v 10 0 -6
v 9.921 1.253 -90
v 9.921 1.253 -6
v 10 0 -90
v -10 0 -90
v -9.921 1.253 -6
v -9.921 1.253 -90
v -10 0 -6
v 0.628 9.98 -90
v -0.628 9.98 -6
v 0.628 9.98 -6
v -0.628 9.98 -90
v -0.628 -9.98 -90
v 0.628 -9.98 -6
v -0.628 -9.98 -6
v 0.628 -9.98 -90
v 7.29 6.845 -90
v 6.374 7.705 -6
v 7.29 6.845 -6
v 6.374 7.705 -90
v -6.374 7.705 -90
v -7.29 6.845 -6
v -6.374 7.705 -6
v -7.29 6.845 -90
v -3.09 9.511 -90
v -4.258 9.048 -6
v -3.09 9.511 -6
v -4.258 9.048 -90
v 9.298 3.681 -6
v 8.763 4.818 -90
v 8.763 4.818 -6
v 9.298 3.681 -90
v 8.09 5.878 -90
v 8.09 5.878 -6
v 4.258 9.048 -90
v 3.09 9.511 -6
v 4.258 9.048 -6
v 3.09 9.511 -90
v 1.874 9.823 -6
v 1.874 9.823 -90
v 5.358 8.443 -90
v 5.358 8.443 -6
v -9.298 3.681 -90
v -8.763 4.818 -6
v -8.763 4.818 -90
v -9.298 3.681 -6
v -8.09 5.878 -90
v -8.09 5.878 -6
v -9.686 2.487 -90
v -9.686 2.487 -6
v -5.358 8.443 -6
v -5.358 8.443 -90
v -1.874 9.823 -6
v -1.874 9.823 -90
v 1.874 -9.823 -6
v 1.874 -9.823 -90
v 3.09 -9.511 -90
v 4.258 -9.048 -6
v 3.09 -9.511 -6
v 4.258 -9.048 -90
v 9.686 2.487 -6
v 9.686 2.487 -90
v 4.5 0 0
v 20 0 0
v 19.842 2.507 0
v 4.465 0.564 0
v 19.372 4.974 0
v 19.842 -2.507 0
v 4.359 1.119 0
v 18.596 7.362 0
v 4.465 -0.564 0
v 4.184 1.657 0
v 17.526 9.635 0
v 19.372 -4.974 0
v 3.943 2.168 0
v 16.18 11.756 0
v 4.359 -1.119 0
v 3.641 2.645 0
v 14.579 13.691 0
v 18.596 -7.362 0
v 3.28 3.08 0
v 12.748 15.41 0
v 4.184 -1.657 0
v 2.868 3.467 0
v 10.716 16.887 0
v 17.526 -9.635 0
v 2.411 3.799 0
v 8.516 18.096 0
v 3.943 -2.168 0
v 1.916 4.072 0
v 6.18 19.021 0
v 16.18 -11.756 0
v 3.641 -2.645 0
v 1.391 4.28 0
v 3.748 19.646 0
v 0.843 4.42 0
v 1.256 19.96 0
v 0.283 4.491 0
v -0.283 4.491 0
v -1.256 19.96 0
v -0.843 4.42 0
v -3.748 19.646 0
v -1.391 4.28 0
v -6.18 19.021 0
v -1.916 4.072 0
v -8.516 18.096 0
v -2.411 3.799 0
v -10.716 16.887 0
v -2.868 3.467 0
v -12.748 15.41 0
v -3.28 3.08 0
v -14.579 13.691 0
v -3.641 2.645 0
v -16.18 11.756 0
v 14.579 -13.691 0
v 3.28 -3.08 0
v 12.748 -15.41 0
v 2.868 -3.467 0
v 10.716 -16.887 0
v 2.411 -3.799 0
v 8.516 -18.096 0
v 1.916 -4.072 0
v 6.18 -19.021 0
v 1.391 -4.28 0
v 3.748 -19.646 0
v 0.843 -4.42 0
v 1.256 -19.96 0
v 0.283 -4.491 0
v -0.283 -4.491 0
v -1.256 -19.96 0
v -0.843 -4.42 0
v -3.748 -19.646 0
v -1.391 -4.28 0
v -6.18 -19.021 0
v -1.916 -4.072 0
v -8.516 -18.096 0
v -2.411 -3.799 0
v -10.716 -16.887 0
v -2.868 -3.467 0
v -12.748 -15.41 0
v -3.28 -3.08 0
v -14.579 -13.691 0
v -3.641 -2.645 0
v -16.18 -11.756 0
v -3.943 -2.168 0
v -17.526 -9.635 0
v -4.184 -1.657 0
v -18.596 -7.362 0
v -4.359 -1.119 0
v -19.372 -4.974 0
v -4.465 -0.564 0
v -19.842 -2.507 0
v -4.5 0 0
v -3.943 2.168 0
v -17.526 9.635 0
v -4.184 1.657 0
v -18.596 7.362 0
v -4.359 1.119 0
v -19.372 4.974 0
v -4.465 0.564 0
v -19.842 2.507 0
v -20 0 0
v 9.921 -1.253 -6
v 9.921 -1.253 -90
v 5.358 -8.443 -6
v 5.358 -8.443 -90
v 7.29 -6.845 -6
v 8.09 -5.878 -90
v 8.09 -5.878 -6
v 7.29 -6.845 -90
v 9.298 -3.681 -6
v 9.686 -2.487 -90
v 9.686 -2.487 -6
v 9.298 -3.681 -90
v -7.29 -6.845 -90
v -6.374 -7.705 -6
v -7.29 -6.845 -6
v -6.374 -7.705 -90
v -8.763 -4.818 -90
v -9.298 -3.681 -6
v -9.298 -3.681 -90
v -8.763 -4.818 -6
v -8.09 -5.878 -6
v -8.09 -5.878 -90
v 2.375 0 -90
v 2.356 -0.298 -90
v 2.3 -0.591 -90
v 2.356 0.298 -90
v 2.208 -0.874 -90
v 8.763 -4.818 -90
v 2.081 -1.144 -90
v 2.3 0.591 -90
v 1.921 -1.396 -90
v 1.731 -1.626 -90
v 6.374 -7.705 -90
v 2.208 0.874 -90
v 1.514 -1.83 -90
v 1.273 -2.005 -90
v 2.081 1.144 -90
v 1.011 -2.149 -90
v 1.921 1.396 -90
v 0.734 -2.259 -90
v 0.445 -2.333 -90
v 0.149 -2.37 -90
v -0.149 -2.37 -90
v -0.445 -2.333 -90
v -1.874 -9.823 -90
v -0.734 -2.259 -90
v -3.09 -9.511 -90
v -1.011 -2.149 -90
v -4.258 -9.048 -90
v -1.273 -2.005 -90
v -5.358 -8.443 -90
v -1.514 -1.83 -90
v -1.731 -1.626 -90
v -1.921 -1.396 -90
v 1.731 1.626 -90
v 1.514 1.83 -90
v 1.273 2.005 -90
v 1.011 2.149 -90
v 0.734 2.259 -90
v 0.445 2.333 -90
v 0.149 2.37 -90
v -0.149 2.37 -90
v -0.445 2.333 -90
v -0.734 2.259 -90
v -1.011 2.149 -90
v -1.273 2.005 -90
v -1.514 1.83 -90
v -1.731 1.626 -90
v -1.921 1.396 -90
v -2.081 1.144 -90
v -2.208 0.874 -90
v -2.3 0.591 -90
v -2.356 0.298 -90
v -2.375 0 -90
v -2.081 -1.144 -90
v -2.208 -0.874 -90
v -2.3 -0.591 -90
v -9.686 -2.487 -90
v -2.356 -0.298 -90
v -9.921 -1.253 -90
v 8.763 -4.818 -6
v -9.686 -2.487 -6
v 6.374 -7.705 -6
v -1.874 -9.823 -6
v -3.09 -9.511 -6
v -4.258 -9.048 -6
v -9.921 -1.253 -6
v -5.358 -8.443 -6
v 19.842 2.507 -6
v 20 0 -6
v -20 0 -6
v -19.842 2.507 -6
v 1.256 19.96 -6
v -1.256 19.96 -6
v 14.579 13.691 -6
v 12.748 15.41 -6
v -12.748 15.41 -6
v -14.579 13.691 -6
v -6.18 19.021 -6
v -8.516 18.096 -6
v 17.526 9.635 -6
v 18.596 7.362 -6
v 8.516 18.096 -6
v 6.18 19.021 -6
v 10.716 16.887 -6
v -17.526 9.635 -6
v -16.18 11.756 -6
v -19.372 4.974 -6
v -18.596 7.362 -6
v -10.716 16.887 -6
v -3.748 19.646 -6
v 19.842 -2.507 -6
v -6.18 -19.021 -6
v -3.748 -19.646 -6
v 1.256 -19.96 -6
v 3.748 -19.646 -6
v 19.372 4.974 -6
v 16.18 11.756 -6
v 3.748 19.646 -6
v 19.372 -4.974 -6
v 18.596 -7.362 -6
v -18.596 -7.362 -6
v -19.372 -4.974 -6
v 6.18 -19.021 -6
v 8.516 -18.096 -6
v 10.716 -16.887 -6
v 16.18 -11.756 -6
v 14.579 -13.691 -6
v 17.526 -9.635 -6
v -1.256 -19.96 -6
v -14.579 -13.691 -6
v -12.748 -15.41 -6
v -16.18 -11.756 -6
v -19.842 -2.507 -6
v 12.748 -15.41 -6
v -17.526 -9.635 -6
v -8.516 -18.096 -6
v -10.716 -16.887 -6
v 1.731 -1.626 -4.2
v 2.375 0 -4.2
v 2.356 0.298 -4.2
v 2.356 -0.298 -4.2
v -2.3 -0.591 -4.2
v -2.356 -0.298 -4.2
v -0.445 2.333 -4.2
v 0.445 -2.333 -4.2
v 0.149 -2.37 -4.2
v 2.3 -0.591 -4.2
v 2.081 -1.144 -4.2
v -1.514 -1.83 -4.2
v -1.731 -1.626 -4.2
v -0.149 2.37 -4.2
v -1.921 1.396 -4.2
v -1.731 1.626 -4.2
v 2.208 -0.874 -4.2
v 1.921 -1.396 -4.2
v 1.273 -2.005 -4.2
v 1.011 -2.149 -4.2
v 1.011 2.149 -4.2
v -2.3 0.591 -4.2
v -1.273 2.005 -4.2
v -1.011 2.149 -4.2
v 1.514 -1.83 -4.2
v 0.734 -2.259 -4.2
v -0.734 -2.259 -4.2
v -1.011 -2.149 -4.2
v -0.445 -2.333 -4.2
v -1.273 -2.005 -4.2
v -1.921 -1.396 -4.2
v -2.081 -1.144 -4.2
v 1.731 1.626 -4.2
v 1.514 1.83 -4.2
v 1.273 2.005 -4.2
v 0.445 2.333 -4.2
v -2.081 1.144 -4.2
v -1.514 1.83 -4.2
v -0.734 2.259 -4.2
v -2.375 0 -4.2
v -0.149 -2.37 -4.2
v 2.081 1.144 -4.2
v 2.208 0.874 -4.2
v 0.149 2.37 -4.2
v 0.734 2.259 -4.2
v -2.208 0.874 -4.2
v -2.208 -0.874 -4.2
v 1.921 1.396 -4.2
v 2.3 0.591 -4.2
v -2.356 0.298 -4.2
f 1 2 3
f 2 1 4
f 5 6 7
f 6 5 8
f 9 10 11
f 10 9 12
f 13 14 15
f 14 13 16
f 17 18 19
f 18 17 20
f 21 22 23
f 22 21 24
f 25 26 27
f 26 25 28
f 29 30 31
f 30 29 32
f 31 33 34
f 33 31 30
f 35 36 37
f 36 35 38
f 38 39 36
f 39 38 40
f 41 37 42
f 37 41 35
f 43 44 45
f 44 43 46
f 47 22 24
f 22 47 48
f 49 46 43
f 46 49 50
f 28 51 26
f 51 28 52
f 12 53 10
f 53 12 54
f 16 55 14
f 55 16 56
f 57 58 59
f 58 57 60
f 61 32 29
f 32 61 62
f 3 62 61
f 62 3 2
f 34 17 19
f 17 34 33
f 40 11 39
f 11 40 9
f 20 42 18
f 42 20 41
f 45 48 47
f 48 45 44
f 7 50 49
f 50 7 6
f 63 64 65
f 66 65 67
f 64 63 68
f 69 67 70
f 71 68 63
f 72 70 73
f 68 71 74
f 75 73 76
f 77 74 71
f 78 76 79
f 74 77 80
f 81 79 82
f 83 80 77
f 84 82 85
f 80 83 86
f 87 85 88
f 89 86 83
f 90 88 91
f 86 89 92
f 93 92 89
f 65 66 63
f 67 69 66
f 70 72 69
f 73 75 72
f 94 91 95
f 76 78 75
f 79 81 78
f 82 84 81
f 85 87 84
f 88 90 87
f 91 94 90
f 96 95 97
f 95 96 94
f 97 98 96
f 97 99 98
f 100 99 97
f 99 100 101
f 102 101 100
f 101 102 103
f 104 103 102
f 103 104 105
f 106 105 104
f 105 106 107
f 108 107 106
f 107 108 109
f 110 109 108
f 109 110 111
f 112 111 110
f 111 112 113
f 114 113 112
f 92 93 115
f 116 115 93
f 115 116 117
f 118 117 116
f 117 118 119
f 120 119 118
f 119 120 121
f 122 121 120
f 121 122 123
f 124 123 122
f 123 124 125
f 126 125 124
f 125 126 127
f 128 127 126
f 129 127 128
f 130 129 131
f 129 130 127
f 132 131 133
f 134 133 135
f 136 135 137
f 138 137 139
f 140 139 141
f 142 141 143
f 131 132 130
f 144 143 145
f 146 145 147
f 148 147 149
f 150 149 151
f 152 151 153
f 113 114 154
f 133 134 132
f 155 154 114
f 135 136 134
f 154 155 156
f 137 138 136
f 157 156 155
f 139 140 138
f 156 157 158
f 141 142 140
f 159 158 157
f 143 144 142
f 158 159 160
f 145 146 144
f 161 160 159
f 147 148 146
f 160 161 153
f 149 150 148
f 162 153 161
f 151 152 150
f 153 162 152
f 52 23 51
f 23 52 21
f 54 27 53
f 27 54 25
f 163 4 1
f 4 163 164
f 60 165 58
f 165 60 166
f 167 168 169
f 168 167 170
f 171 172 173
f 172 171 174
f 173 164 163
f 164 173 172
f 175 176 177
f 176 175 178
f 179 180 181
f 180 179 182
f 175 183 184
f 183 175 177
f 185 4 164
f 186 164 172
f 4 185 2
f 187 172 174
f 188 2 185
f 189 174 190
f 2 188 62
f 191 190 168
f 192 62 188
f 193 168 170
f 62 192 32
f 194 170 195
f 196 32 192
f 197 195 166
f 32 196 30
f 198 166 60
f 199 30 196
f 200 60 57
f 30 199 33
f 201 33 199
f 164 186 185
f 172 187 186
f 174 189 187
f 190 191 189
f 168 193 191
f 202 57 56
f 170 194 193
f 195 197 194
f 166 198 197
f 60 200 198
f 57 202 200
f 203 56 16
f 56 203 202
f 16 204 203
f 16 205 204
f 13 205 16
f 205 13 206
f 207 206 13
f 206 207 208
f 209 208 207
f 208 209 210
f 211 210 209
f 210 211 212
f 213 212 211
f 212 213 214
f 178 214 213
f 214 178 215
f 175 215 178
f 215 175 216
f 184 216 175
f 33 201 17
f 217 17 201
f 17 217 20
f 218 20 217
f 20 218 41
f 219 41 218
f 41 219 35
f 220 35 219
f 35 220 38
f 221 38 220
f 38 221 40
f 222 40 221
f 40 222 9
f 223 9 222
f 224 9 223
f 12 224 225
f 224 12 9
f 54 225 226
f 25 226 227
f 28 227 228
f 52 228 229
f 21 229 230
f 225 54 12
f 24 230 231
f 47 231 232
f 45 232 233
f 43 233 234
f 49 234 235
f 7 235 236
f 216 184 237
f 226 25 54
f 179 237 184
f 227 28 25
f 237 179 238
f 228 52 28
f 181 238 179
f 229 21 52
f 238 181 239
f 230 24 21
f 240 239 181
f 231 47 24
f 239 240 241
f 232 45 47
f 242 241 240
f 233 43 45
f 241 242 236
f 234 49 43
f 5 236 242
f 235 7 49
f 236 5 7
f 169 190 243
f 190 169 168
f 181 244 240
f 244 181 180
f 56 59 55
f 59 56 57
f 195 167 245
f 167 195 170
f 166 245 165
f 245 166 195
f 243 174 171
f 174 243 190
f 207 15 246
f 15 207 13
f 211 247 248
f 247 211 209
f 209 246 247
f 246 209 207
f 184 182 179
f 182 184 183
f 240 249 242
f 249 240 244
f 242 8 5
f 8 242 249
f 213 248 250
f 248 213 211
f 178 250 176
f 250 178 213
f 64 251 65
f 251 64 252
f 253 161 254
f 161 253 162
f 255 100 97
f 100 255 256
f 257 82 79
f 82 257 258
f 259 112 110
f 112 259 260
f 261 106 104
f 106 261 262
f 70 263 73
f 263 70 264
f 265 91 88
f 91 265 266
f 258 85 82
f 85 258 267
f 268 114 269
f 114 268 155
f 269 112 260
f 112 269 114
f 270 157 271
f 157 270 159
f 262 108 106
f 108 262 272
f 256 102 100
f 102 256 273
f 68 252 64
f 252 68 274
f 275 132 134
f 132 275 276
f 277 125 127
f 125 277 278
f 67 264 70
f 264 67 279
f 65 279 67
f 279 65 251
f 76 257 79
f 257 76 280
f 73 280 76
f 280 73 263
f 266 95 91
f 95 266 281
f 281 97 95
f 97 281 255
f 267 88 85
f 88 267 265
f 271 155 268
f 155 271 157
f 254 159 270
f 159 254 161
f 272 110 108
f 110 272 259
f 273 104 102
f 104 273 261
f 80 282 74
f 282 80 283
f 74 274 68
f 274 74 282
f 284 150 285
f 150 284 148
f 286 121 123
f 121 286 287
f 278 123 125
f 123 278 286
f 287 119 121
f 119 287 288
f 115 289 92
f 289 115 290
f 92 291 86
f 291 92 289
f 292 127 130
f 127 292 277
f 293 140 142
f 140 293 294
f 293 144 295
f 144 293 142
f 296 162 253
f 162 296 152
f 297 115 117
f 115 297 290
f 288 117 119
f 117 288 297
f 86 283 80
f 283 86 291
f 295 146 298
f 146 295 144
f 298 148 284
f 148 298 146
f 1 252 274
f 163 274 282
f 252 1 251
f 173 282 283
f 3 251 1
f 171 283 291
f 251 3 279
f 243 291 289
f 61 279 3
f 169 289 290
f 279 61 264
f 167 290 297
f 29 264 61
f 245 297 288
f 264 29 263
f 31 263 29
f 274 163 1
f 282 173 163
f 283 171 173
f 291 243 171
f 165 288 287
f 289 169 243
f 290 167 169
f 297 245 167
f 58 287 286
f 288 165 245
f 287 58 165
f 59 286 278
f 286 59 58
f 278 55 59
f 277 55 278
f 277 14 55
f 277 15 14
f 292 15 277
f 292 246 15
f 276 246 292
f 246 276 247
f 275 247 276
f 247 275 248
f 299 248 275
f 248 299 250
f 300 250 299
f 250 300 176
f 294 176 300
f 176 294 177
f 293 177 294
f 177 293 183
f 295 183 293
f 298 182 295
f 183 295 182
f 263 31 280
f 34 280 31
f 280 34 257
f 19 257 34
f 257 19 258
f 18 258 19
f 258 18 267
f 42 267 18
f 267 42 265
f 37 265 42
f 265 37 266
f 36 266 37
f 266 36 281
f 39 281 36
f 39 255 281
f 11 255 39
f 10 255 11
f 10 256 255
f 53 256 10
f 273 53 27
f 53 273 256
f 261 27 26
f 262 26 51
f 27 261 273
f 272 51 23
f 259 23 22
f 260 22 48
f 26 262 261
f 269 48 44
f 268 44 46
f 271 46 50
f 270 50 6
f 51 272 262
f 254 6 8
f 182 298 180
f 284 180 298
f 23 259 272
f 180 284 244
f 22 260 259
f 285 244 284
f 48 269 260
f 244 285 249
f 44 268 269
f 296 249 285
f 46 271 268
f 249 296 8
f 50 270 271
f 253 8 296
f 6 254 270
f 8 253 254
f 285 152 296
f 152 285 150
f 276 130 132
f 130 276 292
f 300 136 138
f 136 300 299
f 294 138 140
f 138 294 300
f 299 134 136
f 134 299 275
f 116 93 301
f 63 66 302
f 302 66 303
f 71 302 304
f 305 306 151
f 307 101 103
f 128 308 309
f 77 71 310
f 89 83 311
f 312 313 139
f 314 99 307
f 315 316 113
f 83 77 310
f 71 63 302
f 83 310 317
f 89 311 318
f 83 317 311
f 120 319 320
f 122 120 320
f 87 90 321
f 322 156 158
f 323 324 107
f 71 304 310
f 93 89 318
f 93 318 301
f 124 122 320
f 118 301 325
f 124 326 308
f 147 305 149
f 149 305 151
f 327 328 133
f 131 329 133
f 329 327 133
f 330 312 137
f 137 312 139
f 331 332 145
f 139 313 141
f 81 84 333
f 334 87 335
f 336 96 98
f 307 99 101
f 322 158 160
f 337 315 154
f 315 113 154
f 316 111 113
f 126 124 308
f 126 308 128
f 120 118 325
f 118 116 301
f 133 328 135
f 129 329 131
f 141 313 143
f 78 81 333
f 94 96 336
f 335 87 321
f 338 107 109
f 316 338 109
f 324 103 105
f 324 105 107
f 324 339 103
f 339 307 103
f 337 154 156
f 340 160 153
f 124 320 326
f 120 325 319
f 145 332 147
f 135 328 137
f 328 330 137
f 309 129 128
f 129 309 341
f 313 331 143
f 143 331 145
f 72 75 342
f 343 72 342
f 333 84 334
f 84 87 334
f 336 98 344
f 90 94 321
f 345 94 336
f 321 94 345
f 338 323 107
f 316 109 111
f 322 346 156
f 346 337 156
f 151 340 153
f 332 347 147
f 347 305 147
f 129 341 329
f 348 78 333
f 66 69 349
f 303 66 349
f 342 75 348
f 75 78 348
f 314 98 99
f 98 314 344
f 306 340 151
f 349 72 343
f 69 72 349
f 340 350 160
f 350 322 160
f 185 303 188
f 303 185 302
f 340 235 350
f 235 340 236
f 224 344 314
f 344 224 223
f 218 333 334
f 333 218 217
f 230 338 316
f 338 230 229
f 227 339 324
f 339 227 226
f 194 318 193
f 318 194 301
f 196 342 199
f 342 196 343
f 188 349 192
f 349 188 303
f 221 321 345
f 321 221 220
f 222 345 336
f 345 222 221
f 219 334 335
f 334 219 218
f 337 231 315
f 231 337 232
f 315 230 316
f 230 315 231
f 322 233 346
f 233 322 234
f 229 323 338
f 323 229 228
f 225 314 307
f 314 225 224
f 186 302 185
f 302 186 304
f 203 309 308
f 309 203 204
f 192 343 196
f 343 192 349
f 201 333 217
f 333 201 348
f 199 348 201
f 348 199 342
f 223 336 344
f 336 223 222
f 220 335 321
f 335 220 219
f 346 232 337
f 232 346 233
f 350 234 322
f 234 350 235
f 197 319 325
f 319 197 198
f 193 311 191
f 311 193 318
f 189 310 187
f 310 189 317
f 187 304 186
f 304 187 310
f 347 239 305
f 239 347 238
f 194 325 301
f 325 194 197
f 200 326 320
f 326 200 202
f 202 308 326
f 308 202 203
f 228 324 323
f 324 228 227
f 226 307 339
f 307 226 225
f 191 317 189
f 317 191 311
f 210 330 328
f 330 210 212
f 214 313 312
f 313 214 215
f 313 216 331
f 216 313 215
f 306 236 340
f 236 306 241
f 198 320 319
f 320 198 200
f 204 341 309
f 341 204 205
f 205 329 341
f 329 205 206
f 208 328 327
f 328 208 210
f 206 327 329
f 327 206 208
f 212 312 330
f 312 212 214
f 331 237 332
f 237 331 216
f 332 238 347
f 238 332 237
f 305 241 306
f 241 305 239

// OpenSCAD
$fn = 50;


difference() {
	union() {
		translate(v = [0, 0, -90.0000000000]) {
			cylinder(h = 90, r = 10.0000000000);
		}
		translate(v = [0, 0, -6.0000000000]) {
			cylinder(h = 6, r = 20.0000000000);
		}
	}
	union() {
		translate(v = [0, 0, 0]) {
			rotate(a = [0, 0, 0]) {
				difference() {
					union() {
						#translate(v = [0, 0, -90.0000000000]) {
							cylinder(h = 90, r = 2.2500000000);
						}
						#translate(v = [0, 0, -4.2000000000]) {
							cylinder(h = 4.2000000000, r1 = 2.3750000000, r2 = 4.5000000000);
						}
						#translate(v = [0, 0, -90.0000000000]) {
							cylinder(h = 90, r = 2.3750000000);
						}
						#translate(v = [0, 0, -90.0000000000]) {
							cylinder(h = 90, r = 2.2500000000);
						}
					}
					union();
				}
			}
		}
	}
}
